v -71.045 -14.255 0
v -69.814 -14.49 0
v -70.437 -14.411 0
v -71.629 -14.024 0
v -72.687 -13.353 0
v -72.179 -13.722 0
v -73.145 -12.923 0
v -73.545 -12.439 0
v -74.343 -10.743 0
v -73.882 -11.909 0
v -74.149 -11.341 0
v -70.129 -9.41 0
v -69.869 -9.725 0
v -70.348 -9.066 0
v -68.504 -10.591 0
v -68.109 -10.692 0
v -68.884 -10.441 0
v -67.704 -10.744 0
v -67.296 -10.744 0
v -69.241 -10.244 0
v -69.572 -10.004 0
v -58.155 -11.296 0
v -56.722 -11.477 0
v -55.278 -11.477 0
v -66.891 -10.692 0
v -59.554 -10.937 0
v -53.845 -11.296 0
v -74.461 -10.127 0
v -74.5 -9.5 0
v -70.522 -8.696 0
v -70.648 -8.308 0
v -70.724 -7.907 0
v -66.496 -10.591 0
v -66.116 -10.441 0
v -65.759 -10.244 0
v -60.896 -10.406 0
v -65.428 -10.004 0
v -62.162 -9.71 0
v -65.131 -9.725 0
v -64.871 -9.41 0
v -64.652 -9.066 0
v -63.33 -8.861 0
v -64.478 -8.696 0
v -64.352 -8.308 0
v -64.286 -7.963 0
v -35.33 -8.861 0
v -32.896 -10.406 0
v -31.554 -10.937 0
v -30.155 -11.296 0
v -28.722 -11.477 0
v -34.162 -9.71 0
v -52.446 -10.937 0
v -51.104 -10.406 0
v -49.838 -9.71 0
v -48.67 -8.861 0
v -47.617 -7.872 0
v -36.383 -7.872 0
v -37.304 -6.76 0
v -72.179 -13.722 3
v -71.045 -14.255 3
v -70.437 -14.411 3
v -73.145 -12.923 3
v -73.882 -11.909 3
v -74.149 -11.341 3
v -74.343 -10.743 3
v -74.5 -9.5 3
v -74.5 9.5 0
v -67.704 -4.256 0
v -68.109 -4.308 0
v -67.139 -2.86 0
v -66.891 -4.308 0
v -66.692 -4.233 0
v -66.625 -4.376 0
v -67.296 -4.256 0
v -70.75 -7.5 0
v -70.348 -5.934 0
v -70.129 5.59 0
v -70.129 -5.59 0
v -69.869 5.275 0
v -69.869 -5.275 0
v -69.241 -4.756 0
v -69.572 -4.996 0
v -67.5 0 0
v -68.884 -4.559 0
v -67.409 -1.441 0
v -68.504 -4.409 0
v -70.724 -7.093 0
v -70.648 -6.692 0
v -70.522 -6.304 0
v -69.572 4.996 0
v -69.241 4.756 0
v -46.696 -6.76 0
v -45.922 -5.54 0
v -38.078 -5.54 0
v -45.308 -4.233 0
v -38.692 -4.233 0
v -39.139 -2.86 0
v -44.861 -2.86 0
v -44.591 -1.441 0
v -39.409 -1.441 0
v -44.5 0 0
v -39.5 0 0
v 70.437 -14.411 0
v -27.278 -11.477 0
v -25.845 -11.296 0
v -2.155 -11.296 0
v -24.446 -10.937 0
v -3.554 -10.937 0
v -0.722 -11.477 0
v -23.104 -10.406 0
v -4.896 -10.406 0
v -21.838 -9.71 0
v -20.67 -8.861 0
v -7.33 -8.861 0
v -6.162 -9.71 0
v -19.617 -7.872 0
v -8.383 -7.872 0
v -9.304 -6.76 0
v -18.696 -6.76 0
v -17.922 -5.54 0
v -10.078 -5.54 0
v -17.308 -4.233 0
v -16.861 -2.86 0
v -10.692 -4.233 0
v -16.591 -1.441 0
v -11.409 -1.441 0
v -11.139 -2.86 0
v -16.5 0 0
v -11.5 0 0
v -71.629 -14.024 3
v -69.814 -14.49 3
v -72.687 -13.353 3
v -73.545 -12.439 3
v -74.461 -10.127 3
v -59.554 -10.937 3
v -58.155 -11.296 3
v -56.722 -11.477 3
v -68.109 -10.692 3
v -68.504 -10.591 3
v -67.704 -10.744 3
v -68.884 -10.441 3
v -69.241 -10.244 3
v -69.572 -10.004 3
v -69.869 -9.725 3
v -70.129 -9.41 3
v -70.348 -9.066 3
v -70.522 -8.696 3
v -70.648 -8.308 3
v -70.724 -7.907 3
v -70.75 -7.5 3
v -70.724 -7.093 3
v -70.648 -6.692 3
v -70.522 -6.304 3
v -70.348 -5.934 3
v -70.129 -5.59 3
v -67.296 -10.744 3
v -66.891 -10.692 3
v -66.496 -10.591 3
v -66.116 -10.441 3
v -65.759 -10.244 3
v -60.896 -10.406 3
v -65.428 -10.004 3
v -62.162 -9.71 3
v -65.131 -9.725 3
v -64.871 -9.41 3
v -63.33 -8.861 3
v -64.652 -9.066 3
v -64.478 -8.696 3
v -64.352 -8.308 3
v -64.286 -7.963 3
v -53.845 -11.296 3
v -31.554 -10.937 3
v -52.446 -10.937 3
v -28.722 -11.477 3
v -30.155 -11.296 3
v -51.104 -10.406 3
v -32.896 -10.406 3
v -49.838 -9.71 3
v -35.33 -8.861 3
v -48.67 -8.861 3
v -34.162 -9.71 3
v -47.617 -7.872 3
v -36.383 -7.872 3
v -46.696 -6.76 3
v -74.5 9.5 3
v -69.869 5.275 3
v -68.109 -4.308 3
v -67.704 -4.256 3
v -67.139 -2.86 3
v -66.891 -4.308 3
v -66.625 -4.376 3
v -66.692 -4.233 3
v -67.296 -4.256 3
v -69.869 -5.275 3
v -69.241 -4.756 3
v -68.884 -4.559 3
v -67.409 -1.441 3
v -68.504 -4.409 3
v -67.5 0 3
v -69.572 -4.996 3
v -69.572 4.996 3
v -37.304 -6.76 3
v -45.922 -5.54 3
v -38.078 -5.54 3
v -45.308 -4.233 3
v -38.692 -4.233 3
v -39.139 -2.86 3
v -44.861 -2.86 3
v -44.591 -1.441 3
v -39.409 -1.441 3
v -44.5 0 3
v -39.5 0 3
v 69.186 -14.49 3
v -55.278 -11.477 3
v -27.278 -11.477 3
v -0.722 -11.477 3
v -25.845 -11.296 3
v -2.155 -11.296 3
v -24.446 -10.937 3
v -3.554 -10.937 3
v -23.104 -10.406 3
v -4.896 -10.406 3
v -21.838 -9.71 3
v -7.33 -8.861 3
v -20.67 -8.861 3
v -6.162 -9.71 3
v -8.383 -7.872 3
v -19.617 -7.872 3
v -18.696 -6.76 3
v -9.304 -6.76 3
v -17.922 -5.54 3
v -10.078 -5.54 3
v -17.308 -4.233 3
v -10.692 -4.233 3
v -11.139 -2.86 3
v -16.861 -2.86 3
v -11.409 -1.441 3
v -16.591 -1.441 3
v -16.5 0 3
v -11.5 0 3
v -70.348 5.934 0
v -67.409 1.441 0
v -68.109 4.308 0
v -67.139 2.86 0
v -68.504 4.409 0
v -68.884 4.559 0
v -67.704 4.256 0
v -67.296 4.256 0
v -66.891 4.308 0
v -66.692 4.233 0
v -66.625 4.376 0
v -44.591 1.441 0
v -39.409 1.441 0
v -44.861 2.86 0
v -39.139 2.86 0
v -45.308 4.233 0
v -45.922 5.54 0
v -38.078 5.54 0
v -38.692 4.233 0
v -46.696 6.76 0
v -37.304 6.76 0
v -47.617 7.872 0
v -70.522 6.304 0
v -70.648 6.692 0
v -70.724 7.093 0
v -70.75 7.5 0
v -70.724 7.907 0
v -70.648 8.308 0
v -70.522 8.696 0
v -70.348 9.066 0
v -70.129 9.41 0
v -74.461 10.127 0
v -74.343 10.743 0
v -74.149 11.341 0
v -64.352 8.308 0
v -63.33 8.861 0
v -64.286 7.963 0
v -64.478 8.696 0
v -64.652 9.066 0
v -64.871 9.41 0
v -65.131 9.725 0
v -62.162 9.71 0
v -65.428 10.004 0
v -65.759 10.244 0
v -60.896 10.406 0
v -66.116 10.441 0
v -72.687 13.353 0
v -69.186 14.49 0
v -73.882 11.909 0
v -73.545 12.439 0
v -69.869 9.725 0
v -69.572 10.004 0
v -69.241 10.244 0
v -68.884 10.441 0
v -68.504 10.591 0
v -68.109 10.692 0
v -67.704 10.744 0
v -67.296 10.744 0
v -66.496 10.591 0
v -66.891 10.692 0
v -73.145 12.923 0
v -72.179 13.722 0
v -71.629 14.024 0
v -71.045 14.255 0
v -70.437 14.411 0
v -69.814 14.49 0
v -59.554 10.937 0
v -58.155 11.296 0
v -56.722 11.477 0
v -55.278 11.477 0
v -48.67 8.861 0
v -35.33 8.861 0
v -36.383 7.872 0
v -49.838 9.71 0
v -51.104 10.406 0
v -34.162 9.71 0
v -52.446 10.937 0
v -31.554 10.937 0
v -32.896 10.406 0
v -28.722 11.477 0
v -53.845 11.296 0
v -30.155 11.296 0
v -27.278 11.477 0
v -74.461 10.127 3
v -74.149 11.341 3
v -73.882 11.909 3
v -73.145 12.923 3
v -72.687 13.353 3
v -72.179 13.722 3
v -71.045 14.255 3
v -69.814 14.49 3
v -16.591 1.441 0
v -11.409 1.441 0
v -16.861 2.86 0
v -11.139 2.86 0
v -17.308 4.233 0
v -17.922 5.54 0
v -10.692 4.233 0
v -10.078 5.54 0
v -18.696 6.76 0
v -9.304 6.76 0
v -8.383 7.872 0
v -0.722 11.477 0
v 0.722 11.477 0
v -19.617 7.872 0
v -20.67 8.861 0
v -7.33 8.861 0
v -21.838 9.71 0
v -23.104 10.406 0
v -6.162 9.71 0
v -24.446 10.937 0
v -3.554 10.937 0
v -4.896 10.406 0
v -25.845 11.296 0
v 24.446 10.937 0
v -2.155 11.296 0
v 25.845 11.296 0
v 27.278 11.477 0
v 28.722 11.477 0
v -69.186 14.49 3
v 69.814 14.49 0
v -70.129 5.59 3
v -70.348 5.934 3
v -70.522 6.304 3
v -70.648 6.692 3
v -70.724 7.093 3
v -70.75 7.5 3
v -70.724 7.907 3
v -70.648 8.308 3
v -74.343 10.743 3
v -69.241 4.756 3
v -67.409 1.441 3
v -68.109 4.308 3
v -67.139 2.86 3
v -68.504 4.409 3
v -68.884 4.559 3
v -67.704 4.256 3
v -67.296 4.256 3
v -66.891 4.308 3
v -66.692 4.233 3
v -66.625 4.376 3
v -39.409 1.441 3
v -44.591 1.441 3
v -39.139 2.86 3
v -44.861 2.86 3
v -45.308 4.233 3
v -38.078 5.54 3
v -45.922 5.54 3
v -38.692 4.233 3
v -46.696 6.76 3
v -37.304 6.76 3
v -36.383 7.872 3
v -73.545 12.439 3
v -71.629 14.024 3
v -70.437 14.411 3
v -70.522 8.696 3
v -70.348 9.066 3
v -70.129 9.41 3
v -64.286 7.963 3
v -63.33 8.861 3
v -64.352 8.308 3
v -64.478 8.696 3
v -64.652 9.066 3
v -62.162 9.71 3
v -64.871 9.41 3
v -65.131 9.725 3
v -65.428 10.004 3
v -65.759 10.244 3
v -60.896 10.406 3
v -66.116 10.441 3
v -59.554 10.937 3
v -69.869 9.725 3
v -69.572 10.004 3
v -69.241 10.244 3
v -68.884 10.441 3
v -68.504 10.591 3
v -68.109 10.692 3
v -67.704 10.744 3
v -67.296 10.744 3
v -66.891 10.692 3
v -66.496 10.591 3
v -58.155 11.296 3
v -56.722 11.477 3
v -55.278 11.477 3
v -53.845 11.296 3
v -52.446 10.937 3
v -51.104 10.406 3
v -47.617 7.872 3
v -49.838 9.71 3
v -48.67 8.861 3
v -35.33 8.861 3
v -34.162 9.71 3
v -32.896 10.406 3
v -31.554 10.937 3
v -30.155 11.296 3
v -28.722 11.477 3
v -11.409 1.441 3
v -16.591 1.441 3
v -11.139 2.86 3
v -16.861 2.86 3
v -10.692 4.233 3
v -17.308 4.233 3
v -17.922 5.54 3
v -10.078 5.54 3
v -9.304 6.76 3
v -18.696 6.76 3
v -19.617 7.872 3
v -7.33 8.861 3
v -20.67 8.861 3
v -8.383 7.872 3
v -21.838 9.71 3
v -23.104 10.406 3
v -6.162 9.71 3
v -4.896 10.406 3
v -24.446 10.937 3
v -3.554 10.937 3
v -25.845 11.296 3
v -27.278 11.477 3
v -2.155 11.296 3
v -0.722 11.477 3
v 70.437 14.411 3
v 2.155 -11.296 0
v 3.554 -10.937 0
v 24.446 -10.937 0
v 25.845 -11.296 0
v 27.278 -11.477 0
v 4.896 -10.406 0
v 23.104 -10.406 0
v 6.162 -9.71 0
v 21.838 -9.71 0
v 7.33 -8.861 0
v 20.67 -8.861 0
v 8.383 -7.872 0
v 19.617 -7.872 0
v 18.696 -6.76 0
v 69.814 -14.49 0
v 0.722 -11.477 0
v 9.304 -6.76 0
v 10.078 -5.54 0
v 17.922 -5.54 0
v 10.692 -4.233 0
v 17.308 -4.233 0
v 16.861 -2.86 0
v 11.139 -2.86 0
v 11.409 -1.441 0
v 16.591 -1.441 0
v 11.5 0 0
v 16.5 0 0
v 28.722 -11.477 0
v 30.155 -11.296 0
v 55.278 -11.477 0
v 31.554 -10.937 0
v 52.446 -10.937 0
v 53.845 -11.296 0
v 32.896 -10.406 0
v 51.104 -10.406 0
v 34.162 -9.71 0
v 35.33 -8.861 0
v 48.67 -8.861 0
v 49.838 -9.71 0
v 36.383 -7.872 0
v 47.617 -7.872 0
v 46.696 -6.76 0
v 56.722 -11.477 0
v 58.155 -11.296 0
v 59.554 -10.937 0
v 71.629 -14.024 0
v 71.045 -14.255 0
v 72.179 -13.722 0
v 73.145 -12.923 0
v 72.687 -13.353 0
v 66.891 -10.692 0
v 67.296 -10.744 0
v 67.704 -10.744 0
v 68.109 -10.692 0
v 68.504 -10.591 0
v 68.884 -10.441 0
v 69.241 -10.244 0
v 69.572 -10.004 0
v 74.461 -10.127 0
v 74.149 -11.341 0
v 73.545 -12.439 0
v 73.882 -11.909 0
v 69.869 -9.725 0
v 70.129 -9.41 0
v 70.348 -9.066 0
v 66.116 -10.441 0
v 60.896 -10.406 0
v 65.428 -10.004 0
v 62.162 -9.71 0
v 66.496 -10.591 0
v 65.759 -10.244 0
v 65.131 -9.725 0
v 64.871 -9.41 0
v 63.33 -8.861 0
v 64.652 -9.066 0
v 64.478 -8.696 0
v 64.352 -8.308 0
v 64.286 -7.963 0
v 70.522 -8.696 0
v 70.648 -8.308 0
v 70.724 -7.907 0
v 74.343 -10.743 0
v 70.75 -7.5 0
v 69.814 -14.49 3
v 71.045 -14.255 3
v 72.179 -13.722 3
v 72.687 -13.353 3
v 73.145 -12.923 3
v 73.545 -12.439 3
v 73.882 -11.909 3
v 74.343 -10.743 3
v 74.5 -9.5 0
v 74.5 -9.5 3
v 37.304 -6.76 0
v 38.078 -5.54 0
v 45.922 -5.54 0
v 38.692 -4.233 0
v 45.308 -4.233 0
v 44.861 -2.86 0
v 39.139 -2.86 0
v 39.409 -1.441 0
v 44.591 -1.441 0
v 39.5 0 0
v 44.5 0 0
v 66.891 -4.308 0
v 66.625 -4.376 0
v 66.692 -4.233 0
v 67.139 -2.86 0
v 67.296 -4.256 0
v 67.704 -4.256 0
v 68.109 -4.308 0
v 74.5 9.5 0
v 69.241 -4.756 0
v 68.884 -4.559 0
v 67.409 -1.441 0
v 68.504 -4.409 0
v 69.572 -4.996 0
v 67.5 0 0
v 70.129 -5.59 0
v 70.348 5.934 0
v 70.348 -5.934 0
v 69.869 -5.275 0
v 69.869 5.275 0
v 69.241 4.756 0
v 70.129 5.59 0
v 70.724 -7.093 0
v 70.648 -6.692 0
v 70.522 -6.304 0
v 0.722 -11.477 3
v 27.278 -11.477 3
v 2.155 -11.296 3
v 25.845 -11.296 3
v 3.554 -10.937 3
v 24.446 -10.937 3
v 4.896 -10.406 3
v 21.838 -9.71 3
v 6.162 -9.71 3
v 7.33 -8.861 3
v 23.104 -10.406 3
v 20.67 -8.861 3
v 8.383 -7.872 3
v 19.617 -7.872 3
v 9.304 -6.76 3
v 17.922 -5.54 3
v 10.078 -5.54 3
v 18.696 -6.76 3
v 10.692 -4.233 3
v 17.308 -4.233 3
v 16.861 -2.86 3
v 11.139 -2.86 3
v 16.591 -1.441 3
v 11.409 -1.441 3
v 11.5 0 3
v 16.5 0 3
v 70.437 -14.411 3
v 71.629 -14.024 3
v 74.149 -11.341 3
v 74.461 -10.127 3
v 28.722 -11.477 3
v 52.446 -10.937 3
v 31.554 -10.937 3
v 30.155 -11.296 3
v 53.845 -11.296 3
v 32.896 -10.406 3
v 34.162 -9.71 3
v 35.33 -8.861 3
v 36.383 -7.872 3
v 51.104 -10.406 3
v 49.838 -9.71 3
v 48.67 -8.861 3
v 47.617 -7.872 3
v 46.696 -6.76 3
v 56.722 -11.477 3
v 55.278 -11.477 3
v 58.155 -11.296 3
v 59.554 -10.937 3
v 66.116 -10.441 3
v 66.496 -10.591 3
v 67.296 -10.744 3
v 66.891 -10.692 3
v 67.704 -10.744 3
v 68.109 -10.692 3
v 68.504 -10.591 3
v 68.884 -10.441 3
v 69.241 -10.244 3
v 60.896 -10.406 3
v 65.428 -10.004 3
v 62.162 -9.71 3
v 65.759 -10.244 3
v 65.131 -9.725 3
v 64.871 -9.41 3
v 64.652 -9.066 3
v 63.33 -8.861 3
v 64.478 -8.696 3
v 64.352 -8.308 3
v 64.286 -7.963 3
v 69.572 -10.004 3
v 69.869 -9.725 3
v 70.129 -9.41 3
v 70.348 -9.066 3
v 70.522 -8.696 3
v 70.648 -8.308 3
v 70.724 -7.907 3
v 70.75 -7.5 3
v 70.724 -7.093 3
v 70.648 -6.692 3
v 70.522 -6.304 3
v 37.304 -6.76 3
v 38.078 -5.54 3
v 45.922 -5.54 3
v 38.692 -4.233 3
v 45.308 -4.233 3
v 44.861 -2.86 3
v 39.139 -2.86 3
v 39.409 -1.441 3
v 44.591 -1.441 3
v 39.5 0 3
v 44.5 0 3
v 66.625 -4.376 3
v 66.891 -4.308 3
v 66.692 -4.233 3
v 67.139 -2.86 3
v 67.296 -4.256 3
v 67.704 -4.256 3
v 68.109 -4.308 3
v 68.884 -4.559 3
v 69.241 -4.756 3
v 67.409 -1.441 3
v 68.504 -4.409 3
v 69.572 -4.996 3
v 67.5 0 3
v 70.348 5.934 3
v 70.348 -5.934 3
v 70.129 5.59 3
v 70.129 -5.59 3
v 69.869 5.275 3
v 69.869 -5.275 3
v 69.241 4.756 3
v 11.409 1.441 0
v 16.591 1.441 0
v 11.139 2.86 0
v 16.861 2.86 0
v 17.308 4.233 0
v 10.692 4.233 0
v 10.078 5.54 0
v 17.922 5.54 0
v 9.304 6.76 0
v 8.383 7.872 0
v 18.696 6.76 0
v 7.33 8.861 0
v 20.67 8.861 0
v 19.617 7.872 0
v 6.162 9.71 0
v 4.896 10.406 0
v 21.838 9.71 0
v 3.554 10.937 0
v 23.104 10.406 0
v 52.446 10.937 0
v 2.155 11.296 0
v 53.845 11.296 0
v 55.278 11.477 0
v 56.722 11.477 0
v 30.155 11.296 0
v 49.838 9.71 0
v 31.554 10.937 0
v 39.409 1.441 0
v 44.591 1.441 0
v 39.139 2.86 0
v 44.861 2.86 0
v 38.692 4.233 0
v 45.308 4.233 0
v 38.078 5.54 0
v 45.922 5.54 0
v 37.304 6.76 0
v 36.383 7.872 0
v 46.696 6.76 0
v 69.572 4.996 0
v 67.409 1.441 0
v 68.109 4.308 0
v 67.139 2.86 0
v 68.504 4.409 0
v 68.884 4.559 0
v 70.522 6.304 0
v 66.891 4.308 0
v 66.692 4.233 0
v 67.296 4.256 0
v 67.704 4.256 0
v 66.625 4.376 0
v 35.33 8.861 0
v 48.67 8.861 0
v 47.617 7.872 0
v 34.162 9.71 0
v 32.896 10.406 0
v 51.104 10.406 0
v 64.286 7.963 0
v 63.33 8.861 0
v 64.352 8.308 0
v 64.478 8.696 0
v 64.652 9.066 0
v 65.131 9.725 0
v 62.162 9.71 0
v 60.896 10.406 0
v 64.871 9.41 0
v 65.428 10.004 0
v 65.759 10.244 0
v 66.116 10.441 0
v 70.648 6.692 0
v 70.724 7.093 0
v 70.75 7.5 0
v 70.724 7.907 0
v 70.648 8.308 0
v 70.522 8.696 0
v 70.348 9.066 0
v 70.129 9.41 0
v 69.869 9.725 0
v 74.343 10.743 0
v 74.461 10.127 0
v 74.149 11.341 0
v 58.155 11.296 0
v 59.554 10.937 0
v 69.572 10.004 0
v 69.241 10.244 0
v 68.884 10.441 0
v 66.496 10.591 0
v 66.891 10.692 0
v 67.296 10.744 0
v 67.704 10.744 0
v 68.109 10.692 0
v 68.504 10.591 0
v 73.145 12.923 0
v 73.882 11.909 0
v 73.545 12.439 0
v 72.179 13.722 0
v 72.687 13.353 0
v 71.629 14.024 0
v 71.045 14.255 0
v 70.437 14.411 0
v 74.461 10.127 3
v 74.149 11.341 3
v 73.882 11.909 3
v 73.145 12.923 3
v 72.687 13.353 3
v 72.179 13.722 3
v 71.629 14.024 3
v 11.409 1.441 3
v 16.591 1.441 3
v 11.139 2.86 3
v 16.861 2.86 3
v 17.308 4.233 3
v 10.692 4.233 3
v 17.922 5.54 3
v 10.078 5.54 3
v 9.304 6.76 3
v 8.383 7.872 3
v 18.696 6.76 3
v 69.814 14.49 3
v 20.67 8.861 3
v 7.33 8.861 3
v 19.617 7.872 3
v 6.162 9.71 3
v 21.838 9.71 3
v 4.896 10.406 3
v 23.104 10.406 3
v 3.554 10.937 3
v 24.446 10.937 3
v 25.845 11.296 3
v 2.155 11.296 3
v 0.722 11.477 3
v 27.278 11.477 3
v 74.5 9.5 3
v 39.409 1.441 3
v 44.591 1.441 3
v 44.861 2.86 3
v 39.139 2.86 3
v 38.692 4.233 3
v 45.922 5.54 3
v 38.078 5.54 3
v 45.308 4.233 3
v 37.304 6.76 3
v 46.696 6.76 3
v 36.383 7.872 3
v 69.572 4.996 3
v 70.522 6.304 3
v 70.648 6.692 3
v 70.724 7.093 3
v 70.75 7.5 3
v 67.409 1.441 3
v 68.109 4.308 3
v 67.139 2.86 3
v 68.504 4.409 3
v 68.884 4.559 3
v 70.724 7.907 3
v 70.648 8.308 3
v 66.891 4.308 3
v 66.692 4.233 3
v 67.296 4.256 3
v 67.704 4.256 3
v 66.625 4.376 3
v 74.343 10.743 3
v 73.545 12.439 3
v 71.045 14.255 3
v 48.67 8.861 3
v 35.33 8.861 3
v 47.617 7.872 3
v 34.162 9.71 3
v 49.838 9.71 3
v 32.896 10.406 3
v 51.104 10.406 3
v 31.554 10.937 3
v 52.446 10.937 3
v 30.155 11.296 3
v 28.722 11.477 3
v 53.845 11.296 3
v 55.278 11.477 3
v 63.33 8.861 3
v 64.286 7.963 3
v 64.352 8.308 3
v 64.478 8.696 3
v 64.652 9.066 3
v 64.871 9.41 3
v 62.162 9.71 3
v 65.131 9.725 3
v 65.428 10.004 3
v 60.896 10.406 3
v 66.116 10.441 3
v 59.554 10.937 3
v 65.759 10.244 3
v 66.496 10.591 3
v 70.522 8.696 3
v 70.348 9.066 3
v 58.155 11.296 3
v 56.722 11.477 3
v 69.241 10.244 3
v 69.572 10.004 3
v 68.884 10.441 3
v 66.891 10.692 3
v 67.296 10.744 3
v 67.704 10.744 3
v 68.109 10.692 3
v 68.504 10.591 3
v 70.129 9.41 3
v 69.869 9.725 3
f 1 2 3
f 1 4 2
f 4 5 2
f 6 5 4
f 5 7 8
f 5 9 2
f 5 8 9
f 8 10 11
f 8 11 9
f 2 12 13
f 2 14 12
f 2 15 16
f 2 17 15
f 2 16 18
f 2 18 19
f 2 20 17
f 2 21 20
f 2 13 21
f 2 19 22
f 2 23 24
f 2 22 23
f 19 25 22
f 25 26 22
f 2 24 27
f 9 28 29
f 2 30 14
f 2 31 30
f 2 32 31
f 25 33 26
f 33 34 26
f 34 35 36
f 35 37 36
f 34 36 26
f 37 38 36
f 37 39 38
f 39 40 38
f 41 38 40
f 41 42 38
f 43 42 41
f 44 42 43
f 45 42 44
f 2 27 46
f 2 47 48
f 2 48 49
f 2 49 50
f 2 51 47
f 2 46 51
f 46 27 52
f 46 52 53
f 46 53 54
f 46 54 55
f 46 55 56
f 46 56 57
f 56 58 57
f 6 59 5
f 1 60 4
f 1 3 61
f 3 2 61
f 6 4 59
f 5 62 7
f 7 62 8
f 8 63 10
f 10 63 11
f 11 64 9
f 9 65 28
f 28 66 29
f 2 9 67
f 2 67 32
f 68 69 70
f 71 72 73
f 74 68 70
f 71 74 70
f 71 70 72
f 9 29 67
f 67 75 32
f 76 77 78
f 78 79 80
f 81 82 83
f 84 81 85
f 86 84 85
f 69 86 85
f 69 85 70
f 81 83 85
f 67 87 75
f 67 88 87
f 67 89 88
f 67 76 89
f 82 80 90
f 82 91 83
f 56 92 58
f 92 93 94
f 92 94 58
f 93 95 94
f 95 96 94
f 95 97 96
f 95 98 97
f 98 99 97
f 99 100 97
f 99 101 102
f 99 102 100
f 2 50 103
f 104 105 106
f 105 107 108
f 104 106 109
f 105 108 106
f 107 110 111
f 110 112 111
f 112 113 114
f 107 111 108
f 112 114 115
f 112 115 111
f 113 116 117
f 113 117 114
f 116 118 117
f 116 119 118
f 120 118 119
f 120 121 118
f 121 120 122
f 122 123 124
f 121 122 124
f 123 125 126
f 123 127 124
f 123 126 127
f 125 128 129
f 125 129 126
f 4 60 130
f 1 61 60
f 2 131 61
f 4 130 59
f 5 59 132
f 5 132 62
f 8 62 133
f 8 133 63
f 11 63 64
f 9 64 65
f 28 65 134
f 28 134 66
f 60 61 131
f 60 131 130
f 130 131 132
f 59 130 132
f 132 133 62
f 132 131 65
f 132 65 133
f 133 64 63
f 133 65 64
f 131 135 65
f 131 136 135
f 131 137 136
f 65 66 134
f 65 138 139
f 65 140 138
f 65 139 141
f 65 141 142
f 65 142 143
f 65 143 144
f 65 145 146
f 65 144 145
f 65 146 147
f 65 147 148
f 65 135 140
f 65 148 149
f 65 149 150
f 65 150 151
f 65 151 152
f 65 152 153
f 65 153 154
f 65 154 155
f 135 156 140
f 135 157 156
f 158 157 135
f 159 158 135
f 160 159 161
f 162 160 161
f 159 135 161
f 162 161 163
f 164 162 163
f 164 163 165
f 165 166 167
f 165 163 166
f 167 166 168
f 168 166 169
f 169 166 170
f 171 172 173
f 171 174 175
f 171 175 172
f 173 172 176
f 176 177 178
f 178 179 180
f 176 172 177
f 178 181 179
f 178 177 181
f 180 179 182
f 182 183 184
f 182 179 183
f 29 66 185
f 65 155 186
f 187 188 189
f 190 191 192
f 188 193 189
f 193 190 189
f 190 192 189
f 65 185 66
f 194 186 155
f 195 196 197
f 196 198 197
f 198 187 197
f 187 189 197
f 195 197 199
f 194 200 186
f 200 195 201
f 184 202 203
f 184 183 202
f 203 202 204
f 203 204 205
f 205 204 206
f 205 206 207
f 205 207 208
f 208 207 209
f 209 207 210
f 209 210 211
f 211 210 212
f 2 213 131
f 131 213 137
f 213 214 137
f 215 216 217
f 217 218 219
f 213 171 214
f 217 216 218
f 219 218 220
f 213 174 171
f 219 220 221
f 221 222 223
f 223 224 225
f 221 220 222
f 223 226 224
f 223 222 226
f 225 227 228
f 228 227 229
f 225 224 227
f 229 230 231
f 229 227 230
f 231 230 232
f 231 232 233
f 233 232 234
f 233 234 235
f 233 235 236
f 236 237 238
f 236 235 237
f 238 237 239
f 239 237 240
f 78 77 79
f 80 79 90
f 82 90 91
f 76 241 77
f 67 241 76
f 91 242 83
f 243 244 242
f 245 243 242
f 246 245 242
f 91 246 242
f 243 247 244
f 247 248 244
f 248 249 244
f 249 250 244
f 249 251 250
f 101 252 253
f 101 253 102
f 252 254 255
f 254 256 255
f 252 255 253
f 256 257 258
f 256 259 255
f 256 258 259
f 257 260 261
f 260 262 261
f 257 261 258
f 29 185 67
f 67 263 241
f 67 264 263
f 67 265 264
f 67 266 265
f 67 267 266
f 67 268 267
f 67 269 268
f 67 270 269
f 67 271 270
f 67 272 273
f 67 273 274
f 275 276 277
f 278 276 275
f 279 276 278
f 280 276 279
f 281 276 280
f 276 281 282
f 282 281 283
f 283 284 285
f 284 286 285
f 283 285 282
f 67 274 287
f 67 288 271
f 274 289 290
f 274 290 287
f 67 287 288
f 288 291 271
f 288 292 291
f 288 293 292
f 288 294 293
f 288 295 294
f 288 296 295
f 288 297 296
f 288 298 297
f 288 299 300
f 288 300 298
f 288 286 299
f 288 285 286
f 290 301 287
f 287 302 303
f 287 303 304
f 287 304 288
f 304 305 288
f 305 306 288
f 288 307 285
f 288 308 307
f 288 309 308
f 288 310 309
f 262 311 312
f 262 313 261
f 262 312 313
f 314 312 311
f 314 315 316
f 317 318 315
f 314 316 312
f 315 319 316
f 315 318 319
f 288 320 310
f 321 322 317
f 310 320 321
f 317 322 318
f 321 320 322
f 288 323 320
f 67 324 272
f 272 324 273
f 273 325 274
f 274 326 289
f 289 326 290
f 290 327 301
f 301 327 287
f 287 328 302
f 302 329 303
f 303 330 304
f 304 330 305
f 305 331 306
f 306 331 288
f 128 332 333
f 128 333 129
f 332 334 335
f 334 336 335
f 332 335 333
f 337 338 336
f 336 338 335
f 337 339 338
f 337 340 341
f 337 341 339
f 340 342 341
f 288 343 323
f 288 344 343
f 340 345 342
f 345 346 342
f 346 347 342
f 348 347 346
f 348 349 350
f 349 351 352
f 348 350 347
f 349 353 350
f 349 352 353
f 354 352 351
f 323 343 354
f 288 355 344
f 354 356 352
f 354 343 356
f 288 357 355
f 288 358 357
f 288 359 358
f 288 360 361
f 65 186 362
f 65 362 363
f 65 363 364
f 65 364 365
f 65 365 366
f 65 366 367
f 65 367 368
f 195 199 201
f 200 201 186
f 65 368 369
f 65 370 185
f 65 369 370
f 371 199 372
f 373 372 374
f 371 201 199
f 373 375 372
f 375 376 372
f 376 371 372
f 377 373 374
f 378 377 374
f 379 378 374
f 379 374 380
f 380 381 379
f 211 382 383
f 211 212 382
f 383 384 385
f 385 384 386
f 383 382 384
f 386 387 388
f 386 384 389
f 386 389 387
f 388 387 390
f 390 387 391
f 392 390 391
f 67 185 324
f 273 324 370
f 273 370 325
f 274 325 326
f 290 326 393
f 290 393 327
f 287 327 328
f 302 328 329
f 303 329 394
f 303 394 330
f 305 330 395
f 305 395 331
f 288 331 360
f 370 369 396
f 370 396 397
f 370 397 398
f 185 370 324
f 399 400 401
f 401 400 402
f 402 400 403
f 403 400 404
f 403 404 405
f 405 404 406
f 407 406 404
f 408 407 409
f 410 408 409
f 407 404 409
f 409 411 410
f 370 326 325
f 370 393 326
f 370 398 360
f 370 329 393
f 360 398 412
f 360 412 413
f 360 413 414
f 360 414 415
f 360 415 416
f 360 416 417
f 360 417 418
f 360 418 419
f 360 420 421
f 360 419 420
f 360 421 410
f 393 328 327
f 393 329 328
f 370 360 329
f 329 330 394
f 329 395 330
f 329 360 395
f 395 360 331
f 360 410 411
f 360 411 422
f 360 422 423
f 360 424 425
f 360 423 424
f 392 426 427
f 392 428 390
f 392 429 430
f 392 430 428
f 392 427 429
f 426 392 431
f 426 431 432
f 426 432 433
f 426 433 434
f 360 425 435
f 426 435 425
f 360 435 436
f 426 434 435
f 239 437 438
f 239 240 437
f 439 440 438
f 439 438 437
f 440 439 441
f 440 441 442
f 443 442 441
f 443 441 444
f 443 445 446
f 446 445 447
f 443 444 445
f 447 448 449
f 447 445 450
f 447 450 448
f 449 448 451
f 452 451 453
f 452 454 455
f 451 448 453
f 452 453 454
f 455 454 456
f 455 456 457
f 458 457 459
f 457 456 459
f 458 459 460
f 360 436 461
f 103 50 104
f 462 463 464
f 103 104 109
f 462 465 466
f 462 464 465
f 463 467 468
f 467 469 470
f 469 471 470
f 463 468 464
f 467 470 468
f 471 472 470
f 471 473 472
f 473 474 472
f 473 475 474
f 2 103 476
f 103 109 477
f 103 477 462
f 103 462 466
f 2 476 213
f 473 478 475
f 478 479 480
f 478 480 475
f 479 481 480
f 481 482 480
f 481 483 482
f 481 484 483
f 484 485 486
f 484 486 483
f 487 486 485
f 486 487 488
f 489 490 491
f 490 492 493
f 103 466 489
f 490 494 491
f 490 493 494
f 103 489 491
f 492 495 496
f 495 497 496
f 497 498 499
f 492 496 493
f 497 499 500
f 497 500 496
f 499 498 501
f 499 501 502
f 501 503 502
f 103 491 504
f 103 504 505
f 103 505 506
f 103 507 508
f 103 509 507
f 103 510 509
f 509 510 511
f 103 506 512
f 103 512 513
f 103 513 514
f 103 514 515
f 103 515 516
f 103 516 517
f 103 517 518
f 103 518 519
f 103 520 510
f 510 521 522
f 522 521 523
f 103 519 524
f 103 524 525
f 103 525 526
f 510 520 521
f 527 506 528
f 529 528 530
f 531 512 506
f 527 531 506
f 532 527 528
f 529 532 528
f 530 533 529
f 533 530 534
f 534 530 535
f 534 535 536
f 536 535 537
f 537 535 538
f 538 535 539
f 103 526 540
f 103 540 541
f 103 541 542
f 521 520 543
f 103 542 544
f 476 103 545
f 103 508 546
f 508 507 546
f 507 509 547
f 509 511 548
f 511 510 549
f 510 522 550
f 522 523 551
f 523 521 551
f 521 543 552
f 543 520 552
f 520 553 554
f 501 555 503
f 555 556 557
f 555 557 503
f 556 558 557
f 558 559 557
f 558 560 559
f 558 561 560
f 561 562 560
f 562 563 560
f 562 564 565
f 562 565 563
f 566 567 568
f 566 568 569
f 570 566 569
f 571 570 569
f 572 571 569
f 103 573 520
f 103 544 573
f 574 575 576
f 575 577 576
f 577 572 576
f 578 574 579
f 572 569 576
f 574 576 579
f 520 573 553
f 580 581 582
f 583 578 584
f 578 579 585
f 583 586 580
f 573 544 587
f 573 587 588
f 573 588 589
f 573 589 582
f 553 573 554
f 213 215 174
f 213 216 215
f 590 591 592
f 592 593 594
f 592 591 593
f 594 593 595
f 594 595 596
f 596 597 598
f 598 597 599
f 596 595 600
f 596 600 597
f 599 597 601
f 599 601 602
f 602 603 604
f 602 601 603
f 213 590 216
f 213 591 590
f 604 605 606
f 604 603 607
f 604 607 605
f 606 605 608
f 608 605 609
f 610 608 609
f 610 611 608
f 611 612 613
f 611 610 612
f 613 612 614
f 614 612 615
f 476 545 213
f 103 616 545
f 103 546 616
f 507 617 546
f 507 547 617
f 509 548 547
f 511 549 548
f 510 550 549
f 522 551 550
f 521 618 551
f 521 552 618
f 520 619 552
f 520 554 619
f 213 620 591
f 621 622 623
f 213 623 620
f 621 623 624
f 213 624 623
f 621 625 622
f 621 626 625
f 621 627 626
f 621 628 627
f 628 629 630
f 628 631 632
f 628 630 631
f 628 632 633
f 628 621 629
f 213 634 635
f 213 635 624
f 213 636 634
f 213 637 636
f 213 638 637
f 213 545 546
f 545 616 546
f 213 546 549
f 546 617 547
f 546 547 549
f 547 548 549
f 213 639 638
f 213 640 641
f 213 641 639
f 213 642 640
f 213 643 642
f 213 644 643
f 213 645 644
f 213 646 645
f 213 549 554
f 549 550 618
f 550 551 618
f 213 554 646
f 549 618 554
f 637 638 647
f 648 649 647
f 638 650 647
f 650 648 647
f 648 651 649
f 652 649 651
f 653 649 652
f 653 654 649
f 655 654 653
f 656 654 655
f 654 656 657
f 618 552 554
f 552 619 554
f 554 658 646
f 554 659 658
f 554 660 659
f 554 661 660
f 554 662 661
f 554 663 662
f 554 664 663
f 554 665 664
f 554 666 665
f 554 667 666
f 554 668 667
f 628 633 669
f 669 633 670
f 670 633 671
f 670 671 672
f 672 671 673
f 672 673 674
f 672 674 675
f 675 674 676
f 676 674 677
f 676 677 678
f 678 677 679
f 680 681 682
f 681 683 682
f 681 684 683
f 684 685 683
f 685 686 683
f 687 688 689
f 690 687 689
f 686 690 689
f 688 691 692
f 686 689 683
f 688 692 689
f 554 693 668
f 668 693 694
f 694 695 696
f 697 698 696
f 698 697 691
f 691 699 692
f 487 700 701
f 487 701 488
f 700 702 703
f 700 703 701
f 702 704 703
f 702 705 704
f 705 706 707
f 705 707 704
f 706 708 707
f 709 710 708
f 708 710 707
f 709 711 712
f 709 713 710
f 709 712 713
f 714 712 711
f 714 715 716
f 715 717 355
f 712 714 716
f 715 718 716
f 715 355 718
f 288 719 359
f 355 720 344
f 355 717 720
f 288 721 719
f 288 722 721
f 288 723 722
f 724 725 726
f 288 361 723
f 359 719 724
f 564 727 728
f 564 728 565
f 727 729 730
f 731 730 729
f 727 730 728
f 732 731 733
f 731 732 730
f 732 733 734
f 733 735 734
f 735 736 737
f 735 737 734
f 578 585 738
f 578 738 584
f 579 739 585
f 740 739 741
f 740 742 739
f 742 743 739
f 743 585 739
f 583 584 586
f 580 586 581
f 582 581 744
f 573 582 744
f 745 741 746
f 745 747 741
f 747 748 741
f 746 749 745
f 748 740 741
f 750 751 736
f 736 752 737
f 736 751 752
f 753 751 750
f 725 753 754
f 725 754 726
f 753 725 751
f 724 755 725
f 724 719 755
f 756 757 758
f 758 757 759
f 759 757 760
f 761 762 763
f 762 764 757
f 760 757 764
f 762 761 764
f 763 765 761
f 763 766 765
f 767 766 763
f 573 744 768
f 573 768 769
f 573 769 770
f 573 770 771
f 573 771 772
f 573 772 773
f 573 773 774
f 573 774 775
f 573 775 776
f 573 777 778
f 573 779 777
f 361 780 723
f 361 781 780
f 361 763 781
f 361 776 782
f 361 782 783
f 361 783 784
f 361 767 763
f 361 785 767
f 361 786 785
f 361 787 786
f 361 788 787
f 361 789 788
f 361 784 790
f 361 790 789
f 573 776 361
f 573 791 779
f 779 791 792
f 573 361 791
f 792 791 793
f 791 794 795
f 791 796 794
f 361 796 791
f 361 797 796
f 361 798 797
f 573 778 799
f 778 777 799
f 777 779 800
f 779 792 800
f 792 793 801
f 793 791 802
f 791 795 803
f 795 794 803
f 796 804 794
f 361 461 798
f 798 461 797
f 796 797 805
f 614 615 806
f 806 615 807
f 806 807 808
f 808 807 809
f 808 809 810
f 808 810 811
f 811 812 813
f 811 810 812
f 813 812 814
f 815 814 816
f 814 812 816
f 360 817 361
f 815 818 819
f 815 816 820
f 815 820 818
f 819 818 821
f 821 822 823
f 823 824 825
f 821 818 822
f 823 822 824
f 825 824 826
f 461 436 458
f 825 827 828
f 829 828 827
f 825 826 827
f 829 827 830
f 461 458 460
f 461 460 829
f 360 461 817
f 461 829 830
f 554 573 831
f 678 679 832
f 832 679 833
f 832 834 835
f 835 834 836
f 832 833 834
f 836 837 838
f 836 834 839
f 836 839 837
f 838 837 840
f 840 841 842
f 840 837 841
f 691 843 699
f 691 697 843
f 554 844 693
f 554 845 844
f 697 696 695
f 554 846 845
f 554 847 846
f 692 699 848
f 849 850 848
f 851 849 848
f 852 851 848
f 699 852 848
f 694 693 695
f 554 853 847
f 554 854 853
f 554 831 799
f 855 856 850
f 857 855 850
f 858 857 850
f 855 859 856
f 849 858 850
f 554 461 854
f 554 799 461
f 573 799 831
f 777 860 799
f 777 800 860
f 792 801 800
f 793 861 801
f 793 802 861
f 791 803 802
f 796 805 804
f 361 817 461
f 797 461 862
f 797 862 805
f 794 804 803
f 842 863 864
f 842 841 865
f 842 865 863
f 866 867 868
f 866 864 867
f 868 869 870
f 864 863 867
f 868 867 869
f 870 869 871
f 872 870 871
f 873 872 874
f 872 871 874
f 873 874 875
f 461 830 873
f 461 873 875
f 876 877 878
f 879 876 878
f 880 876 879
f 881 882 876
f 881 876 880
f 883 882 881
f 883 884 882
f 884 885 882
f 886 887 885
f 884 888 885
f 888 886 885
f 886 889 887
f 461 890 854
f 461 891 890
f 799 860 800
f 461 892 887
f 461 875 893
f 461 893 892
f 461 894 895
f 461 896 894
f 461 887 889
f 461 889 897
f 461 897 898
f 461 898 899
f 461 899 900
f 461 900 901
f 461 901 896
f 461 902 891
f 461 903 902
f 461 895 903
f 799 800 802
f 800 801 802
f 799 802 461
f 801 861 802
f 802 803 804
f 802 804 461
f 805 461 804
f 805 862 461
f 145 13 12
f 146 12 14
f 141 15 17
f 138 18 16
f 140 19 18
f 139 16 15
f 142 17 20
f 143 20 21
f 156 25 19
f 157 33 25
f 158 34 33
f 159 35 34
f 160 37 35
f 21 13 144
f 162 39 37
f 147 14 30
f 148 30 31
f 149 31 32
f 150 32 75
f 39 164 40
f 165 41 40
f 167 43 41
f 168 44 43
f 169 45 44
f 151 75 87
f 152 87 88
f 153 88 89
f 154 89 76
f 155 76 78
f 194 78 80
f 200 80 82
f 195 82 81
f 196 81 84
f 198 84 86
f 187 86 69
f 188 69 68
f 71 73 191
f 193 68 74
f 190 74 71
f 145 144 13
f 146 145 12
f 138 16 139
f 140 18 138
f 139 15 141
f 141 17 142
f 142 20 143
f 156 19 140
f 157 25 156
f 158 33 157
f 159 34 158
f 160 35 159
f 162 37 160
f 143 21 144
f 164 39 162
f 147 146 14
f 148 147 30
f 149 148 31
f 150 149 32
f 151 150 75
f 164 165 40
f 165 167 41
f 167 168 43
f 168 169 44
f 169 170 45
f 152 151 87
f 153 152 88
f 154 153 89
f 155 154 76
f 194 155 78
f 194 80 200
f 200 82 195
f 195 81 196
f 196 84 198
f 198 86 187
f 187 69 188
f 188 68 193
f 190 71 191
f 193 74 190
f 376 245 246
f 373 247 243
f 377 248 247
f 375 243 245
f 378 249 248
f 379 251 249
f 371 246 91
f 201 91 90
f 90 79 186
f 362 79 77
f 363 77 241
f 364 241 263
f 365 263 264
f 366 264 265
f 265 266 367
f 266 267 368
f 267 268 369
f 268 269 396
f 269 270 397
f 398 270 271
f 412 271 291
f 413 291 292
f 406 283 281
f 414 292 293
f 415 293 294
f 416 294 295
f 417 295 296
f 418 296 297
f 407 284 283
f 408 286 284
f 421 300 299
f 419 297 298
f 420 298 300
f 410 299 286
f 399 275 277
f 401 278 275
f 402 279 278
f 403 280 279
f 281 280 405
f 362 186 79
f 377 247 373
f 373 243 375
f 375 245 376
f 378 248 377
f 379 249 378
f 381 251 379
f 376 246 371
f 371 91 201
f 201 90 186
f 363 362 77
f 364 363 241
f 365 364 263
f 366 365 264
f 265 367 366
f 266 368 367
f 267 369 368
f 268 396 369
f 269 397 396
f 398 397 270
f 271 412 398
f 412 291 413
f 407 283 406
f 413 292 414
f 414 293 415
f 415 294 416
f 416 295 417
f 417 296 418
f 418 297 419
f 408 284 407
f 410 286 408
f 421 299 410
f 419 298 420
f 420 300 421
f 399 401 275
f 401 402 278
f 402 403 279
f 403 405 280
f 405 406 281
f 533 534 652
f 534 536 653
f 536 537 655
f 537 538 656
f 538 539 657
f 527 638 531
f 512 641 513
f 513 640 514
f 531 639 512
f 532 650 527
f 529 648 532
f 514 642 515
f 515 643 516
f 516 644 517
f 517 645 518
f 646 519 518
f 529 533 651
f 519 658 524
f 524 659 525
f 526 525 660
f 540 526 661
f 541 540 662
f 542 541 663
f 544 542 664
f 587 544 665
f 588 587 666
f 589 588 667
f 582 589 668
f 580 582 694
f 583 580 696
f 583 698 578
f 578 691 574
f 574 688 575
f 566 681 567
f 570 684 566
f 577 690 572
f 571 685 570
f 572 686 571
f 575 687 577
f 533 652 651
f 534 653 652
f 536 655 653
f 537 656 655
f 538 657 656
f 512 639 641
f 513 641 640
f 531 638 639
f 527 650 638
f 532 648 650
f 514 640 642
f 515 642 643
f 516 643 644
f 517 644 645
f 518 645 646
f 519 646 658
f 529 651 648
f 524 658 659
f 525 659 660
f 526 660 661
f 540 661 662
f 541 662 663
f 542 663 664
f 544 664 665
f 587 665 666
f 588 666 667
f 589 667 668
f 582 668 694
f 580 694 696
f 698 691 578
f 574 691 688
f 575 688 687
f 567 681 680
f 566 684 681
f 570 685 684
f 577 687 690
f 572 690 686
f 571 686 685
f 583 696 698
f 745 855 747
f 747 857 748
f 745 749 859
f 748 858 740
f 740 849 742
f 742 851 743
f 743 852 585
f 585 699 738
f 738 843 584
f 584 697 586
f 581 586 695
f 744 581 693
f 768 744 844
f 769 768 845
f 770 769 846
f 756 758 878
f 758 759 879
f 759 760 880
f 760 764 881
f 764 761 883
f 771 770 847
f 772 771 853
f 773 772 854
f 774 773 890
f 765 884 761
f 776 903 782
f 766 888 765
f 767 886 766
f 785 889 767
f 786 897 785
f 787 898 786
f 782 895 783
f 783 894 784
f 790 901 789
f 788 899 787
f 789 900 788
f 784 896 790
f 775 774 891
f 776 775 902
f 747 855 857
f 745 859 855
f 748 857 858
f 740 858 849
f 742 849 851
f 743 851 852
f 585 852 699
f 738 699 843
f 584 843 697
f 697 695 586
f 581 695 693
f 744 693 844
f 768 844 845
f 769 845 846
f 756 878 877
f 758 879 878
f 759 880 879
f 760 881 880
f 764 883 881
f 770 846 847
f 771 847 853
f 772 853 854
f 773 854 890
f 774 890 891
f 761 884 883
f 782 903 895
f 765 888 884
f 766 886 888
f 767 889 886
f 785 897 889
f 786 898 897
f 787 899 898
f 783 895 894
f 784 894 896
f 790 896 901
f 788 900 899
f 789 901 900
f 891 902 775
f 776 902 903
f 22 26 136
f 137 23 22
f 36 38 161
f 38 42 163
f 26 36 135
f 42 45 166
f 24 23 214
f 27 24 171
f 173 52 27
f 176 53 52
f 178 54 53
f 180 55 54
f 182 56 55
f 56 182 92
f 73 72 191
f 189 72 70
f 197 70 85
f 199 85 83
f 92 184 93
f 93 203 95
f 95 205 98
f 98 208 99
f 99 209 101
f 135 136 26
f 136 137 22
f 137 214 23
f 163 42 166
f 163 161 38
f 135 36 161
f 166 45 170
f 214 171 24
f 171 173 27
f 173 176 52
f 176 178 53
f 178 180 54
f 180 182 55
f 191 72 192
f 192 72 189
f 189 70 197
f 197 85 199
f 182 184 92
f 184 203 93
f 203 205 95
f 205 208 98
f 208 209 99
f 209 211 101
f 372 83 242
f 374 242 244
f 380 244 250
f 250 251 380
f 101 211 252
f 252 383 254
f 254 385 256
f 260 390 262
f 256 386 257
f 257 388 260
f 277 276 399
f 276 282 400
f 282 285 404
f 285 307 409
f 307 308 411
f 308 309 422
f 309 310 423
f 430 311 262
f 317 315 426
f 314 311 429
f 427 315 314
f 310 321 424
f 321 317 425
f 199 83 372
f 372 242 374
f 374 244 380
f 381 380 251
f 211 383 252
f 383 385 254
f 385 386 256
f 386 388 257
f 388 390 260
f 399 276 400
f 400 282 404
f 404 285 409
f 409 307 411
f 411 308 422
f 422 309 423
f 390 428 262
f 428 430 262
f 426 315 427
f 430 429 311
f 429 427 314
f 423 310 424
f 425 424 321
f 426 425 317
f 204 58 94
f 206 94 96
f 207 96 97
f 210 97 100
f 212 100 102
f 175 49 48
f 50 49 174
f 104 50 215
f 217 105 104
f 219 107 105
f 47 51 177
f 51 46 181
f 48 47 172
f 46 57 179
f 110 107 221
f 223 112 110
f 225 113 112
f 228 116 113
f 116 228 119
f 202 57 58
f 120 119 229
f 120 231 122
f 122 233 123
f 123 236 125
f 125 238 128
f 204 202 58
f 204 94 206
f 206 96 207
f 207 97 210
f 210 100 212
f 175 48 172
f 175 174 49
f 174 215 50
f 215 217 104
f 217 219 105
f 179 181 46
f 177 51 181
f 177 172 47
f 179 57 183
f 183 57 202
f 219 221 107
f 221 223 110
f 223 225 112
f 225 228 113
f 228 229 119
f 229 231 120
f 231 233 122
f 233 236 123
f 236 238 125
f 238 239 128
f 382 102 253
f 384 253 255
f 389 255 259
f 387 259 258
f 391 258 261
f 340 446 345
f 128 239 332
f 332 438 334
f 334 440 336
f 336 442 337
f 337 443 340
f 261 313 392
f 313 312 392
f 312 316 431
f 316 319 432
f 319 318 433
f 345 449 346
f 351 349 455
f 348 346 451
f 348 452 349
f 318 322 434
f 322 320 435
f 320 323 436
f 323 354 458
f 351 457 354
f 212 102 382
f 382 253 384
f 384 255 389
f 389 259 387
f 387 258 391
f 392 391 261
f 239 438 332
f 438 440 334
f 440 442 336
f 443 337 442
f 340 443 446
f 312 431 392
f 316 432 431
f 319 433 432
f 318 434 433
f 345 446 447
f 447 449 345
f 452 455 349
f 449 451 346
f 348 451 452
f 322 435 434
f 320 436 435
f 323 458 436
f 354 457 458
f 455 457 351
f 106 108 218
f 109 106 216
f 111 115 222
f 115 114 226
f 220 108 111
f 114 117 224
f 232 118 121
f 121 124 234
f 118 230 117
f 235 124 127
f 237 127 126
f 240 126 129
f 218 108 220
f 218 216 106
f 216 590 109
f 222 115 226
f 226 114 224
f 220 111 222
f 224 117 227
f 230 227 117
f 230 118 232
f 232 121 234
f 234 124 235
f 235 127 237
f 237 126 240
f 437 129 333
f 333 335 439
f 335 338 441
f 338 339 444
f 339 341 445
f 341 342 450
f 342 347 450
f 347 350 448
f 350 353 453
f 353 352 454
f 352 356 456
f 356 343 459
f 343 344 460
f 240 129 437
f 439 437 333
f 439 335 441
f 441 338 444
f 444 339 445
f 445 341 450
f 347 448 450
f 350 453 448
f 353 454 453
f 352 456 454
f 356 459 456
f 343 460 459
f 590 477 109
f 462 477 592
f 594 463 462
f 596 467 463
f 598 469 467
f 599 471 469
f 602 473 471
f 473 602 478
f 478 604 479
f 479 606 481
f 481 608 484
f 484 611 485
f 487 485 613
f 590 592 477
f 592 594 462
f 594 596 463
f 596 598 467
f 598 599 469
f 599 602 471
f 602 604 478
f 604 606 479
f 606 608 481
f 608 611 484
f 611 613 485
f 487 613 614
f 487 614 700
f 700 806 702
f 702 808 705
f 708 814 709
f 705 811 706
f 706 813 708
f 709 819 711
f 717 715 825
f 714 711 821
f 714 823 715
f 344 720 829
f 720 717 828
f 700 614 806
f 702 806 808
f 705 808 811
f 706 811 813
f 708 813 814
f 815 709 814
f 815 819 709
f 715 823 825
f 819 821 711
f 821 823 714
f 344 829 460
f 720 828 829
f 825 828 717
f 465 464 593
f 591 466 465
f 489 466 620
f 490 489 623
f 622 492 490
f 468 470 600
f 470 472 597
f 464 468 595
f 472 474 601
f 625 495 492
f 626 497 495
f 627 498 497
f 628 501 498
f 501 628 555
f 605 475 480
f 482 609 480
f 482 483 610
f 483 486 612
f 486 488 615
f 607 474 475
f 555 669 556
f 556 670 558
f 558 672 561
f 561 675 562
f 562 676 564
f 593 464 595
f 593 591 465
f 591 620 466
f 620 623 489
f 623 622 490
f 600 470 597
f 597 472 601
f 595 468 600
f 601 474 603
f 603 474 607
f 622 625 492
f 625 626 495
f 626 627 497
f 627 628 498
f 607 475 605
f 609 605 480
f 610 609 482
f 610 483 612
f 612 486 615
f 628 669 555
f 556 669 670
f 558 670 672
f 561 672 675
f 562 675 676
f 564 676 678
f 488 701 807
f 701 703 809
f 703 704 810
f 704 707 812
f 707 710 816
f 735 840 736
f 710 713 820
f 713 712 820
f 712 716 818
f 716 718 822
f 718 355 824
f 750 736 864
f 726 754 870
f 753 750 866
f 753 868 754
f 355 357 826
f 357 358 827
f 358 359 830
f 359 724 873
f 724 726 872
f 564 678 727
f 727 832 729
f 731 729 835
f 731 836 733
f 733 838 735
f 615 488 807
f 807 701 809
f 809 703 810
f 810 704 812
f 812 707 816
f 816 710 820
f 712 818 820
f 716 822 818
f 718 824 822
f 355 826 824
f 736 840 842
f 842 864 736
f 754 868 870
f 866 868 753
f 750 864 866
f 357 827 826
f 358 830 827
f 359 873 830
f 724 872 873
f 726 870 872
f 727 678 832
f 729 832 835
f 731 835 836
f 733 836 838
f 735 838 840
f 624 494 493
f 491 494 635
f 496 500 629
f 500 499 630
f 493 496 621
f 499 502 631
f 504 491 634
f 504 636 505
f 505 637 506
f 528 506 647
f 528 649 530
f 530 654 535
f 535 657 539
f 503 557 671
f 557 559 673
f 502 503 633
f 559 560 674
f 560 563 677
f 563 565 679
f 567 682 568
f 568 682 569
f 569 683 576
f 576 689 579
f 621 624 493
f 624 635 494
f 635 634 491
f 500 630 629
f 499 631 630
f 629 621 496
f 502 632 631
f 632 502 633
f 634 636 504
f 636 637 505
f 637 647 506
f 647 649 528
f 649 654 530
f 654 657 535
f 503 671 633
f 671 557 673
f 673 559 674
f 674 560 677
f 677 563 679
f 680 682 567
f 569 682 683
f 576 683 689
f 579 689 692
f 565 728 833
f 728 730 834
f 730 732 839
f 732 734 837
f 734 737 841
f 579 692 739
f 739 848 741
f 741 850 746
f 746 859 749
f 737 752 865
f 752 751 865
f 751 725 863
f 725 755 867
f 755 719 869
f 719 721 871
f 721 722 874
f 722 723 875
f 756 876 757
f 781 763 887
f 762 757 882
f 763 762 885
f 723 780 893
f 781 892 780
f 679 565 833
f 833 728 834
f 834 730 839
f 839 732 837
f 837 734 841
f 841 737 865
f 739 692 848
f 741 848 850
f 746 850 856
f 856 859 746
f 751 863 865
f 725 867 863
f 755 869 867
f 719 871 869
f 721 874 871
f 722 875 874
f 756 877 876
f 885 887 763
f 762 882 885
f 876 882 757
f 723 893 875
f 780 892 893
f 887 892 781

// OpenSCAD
$fn = 50;

difference() {
	union() {
		hull() {
			translate(v = [-69.5, 9.5, 0]) {
				cylinder(h = 3, r = 5);
			}
			translate(v = [69.5, 9.5, 0]) {
				cylinder(h = 3, r = 5);
			}
			translate(v = [-69.5, -9.5, 0]) {
				cylinder(h = 3, r = 5);
			}
			translate(v = [69.5, -9.5, 0]) {
				cylinder(h = 3, r = 5);
			}
		}
	}
	union() {
		translate(v = [-67.5, -7.5, -100.0]) {
			cylinder(h = 200, r = 3.25);
		}
		translate(v = [-67.5, 7.5, -100.0]) {
			cylinder(h = 200, r = 3.25);
		}
		translate(v = [67.5, -7.5, -100.0]) {
			cylinder(h = 200, r = 3.25);
		}
		translate(v = [67.5, 7.5, -100.0]) {
			cylinder(h = 200, r = 3.25);
		}
		translate(v = [-67.5, -7.5, -100.0]) {
			cylinder(h = 200, r = 1.8);
		}
		translate(v = [-67.5, 7.5, -100.0]) {
			cylinder(h = 200, r = 1.8);
		}
		translate(v = [67.5, -7.5, -100.0]) {
			cylinder(h = 200, r = 1.8);
		}
		translate(v = [67.5, 7.5, -100.0]) {
			cylinder(h = 200, r = 1.8);
		}
		translate(v = [-56.0, 0, 0.0]) {
			cylinder(h = 3, r = 11.5);
		}
		translate(v = [-28.0, 0, 0.0]) {
			cylinder(h = 3, r = 11.5);
		}
		cylinder(h = 3, r = 11.5);
		translate(v = [28.0, 0, 0.0]) {
			cylinder(h = 3, r = 11.5);
		}
		translate(v = [56.0, 0, 0.0]) {
			cylinder(h = 3, r = 11.5);
		}
	}
}
